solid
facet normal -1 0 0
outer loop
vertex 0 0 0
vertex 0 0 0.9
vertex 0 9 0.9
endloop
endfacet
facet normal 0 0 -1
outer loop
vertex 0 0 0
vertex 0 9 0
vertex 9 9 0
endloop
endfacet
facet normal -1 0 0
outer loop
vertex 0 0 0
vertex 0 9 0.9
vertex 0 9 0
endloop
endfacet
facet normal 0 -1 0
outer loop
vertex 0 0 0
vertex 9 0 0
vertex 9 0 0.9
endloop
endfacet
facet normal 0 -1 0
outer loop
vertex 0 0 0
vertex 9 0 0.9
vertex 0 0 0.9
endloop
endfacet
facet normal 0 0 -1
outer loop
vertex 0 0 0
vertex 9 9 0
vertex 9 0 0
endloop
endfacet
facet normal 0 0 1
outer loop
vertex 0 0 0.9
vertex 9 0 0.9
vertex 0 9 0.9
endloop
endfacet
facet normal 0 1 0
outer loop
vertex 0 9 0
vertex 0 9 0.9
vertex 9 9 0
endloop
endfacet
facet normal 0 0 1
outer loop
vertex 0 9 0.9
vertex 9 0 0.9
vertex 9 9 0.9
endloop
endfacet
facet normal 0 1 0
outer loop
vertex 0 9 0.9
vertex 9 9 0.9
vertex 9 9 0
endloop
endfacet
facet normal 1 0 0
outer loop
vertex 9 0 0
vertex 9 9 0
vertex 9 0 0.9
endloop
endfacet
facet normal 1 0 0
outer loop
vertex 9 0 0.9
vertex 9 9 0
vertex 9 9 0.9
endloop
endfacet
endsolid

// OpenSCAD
/* Warning, this is a very basic generator with a lot of approximation 
input data : [QFN, R4X, 9x9x0.9mm, 64, , A, C04-00154A]
generated by com.zoubworld.electronics.cad.model3d.Basic
Date : Sun Feb 15 10:50:48 CET 2026
*/

//body
color("black")
translate([0,0,0])
cube([9.0,9.0,0.9], center=false);
